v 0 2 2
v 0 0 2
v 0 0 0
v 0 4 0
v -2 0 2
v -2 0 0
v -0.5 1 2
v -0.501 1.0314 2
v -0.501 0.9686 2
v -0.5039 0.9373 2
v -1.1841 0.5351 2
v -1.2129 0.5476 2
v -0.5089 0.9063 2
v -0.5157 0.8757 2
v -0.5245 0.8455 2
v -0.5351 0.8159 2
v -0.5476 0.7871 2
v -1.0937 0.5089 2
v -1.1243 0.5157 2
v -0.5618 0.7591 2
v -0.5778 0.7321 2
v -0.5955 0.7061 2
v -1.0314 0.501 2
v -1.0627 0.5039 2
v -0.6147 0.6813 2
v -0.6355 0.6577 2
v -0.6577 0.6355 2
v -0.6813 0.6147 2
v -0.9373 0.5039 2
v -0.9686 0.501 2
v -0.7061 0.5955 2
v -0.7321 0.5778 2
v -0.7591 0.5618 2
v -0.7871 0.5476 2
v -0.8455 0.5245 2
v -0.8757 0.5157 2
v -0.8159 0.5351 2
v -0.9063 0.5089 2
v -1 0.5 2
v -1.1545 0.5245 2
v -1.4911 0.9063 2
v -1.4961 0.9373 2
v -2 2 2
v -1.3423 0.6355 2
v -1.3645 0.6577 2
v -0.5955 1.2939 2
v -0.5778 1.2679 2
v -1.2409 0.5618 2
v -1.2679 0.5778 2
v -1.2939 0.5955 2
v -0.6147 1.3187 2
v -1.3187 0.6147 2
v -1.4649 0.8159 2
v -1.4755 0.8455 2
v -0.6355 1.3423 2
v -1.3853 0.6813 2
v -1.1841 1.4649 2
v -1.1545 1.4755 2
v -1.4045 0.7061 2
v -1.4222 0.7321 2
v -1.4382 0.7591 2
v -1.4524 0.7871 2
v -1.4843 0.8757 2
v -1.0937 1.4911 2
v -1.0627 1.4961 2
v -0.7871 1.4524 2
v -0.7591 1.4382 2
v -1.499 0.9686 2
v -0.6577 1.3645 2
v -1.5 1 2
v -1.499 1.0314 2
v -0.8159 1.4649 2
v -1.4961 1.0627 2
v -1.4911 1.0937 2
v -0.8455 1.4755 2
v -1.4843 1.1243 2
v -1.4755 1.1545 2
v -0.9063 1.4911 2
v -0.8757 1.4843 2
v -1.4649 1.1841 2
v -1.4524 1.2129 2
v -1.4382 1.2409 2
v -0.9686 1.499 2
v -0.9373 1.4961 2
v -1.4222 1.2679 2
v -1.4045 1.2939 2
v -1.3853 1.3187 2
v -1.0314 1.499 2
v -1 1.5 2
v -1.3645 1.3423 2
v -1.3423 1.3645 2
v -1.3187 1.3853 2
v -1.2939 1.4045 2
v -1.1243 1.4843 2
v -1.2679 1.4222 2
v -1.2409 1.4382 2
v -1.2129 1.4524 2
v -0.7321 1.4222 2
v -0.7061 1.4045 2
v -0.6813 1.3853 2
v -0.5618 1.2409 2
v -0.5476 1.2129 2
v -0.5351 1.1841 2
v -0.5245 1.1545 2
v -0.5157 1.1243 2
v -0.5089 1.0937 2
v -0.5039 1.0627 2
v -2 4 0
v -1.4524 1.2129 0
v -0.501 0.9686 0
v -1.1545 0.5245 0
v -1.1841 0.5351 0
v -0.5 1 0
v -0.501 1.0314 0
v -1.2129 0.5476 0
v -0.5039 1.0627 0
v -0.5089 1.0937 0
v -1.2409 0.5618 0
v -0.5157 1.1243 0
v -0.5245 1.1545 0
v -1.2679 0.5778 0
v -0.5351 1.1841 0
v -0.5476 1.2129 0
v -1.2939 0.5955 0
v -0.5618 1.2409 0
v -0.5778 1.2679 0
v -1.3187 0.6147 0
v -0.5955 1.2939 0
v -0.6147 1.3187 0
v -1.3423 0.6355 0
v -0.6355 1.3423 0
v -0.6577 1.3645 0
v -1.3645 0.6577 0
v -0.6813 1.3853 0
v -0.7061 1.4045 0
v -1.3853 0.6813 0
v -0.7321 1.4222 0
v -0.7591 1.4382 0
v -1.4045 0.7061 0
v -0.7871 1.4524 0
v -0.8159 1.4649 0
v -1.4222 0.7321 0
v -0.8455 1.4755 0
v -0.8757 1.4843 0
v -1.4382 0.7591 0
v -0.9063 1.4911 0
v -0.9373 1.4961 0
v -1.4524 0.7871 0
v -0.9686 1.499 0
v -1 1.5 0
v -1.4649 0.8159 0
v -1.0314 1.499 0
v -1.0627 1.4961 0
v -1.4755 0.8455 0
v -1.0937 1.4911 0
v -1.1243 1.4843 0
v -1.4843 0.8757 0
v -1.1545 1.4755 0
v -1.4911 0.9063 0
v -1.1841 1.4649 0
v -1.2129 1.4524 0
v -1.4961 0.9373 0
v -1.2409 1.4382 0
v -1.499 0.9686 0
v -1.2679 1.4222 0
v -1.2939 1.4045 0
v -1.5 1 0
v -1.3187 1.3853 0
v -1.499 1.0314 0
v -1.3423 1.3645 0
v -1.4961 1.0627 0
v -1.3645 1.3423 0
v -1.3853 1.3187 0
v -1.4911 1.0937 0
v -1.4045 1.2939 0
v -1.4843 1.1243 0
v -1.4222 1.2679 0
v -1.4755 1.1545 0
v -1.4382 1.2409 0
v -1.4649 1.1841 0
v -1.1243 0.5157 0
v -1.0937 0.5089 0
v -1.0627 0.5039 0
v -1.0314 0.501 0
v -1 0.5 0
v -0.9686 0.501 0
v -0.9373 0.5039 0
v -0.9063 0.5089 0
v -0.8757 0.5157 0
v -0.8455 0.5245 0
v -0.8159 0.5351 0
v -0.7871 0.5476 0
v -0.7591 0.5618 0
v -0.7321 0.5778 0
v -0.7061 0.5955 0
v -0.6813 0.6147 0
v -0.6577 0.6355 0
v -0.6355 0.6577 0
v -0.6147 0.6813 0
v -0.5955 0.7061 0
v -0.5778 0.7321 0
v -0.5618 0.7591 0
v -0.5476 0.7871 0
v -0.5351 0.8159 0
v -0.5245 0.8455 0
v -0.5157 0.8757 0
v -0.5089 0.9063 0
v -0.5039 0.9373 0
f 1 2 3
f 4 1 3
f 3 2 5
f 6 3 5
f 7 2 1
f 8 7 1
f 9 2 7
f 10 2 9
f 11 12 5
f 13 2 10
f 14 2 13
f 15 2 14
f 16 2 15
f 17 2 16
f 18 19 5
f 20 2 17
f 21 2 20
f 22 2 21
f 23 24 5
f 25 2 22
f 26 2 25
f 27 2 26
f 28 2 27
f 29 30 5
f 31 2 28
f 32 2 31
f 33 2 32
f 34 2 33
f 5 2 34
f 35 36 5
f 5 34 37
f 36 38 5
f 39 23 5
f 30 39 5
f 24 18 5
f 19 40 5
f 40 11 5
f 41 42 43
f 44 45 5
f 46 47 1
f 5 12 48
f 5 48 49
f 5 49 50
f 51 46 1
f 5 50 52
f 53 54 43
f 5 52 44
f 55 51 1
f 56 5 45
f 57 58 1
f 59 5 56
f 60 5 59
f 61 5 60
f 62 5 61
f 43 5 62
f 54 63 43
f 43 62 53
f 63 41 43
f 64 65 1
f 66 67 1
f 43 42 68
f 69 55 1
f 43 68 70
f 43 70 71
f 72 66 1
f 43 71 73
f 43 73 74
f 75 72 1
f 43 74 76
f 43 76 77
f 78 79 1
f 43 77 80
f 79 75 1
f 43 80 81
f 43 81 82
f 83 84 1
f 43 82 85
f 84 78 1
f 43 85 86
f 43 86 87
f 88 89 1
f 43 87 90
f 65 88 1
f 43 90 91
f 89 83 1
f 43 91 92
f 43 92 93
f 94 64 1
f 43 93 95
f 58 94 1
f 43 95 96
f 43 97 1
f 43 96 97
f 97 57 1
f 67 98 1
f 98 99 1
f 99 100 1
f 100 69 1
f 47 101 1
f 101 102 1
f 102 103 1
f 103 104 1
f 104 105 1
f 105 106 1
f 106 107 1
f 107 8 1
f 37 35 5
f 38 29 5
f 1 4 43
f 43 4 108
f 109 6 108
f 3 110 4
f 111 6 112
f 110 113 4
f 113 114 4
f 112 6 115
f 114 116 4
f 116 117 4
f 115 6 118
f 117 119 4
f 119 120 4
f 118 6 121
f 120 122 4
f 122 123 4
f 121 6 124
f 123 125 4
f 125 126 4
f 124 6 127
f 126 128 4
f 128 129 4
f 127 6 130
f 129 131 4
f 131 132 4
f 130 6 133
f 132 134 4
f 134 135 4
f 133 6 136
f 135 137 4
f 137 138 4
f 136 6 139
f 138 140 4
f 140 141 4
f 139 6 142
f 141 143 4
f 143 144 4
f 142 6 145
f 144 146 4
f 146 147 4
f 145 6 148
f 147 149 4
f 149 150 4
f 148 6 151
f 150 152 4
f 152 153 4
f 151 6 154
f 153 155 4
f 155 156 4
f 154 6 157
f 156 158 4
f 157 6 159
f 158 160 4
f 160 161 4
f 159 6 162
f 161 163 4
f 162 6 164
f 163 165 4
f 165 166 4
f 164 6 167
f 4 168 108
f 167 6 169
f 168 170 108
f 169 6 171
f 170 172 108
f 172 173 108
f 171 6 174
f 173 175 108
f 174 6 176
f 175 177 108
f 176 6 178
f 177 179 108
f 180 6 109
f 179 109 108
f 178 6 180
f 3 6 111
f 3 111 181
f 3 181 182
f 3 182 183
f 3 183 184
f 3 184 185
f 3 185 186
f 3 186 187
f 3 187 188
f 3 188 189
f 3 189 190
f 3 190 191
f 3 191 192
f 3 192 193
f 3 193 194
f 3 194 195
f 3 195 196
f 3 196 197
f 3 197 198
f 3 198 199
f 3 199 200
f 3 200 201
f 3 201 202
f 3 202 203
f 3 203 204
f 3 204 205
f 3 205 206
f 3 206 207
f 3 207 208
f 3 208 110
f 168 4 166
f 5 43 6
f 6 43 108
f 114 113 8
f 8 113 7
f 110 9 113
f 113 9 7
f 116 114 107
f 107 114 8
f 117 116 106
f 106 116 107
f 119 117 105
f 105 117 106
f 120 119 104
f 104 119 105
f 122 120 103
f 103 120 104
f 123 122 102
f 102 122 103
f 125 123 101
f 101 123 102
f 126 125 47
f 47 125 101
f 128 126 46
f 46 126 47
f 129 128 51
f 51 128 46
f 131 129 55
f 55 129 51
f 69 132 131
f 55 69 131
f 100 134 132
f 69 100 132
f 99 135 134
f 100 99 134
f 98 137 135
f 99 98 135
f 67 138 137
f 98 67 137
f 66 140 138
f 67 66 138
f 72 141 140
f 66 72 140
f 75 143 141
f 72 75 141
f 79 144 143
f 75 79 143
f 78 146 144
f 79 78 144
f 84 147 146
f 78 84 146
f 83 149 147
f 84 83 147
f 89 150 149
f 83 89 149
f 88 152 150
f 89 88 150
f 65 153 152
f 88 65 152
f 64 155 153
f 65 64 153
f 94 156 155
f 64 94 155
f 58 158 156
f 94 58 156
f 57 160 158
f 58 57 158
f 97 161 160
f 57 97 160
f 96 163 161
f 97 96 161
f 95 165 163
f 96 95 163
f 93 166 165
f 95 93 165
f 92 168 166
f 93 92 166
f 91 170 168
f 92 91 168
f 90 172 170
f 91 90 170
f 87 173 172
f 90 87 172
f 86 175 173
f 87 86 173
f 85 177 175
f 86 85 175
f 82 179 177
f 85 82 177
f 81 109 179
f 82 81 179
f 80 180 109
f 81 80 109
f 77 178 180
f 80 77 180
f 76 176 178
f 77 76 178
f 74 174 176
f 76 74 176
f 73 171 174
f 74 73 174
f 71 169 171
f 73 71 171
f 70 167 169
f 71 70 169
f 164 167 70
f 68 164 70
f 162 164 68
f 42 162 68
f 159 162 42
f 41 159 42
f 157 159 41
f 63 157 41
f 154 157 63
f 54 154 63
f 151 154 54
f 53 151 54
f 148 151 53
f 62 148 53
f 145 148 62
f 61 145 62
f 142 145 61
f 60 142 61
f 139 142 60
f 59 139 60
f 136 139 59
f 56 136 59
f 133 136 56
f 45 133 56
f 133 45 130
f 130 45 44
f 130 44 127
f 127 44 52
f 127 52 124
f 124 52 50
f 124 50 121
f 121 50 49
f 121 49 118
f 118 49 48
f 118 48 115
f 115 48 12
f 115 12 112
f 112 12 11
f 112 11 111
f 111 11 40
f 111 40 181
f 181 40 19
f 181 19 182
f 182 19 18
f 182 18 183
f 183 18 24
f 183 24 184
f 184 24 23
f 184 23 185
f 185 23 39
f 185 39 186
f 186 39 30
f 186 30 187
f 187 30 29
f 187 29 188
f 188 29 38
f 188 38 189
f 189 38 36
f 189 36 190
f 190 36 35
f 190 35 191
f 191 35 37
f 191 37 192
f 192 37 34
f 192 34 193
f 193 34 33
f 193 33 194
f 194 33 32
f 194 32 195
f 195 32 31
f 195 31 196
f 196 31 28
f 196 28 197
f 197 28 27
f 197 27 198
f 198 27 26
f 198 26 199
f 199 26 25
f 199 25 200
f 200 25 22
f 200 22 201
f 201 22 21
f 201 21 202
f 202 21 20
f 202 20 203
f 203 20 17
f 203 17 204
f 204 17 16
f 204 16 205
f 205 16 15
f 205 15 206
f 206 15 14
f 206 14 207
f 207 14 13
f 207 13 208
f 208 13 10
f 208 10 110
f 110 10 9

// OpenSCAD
translate([0, 0, 2]) rotate([0,180, 0]) //used when printing
difference() {
	union() {
			cube([2, 2, 2]);
			intersection() {
				translate([0, 2, 0]) rotate([45, 0, 0]) cube([2, 3, 2]);
				translate([0, 2, 0]) rotate([0, 0, 0]) cube([2, 3, 2]);
		}
	}
	translate([1, 1, -0.5]) rotate([0, 0, 0]) cylinder(h=3, r=0.5, $fn=100);
}
